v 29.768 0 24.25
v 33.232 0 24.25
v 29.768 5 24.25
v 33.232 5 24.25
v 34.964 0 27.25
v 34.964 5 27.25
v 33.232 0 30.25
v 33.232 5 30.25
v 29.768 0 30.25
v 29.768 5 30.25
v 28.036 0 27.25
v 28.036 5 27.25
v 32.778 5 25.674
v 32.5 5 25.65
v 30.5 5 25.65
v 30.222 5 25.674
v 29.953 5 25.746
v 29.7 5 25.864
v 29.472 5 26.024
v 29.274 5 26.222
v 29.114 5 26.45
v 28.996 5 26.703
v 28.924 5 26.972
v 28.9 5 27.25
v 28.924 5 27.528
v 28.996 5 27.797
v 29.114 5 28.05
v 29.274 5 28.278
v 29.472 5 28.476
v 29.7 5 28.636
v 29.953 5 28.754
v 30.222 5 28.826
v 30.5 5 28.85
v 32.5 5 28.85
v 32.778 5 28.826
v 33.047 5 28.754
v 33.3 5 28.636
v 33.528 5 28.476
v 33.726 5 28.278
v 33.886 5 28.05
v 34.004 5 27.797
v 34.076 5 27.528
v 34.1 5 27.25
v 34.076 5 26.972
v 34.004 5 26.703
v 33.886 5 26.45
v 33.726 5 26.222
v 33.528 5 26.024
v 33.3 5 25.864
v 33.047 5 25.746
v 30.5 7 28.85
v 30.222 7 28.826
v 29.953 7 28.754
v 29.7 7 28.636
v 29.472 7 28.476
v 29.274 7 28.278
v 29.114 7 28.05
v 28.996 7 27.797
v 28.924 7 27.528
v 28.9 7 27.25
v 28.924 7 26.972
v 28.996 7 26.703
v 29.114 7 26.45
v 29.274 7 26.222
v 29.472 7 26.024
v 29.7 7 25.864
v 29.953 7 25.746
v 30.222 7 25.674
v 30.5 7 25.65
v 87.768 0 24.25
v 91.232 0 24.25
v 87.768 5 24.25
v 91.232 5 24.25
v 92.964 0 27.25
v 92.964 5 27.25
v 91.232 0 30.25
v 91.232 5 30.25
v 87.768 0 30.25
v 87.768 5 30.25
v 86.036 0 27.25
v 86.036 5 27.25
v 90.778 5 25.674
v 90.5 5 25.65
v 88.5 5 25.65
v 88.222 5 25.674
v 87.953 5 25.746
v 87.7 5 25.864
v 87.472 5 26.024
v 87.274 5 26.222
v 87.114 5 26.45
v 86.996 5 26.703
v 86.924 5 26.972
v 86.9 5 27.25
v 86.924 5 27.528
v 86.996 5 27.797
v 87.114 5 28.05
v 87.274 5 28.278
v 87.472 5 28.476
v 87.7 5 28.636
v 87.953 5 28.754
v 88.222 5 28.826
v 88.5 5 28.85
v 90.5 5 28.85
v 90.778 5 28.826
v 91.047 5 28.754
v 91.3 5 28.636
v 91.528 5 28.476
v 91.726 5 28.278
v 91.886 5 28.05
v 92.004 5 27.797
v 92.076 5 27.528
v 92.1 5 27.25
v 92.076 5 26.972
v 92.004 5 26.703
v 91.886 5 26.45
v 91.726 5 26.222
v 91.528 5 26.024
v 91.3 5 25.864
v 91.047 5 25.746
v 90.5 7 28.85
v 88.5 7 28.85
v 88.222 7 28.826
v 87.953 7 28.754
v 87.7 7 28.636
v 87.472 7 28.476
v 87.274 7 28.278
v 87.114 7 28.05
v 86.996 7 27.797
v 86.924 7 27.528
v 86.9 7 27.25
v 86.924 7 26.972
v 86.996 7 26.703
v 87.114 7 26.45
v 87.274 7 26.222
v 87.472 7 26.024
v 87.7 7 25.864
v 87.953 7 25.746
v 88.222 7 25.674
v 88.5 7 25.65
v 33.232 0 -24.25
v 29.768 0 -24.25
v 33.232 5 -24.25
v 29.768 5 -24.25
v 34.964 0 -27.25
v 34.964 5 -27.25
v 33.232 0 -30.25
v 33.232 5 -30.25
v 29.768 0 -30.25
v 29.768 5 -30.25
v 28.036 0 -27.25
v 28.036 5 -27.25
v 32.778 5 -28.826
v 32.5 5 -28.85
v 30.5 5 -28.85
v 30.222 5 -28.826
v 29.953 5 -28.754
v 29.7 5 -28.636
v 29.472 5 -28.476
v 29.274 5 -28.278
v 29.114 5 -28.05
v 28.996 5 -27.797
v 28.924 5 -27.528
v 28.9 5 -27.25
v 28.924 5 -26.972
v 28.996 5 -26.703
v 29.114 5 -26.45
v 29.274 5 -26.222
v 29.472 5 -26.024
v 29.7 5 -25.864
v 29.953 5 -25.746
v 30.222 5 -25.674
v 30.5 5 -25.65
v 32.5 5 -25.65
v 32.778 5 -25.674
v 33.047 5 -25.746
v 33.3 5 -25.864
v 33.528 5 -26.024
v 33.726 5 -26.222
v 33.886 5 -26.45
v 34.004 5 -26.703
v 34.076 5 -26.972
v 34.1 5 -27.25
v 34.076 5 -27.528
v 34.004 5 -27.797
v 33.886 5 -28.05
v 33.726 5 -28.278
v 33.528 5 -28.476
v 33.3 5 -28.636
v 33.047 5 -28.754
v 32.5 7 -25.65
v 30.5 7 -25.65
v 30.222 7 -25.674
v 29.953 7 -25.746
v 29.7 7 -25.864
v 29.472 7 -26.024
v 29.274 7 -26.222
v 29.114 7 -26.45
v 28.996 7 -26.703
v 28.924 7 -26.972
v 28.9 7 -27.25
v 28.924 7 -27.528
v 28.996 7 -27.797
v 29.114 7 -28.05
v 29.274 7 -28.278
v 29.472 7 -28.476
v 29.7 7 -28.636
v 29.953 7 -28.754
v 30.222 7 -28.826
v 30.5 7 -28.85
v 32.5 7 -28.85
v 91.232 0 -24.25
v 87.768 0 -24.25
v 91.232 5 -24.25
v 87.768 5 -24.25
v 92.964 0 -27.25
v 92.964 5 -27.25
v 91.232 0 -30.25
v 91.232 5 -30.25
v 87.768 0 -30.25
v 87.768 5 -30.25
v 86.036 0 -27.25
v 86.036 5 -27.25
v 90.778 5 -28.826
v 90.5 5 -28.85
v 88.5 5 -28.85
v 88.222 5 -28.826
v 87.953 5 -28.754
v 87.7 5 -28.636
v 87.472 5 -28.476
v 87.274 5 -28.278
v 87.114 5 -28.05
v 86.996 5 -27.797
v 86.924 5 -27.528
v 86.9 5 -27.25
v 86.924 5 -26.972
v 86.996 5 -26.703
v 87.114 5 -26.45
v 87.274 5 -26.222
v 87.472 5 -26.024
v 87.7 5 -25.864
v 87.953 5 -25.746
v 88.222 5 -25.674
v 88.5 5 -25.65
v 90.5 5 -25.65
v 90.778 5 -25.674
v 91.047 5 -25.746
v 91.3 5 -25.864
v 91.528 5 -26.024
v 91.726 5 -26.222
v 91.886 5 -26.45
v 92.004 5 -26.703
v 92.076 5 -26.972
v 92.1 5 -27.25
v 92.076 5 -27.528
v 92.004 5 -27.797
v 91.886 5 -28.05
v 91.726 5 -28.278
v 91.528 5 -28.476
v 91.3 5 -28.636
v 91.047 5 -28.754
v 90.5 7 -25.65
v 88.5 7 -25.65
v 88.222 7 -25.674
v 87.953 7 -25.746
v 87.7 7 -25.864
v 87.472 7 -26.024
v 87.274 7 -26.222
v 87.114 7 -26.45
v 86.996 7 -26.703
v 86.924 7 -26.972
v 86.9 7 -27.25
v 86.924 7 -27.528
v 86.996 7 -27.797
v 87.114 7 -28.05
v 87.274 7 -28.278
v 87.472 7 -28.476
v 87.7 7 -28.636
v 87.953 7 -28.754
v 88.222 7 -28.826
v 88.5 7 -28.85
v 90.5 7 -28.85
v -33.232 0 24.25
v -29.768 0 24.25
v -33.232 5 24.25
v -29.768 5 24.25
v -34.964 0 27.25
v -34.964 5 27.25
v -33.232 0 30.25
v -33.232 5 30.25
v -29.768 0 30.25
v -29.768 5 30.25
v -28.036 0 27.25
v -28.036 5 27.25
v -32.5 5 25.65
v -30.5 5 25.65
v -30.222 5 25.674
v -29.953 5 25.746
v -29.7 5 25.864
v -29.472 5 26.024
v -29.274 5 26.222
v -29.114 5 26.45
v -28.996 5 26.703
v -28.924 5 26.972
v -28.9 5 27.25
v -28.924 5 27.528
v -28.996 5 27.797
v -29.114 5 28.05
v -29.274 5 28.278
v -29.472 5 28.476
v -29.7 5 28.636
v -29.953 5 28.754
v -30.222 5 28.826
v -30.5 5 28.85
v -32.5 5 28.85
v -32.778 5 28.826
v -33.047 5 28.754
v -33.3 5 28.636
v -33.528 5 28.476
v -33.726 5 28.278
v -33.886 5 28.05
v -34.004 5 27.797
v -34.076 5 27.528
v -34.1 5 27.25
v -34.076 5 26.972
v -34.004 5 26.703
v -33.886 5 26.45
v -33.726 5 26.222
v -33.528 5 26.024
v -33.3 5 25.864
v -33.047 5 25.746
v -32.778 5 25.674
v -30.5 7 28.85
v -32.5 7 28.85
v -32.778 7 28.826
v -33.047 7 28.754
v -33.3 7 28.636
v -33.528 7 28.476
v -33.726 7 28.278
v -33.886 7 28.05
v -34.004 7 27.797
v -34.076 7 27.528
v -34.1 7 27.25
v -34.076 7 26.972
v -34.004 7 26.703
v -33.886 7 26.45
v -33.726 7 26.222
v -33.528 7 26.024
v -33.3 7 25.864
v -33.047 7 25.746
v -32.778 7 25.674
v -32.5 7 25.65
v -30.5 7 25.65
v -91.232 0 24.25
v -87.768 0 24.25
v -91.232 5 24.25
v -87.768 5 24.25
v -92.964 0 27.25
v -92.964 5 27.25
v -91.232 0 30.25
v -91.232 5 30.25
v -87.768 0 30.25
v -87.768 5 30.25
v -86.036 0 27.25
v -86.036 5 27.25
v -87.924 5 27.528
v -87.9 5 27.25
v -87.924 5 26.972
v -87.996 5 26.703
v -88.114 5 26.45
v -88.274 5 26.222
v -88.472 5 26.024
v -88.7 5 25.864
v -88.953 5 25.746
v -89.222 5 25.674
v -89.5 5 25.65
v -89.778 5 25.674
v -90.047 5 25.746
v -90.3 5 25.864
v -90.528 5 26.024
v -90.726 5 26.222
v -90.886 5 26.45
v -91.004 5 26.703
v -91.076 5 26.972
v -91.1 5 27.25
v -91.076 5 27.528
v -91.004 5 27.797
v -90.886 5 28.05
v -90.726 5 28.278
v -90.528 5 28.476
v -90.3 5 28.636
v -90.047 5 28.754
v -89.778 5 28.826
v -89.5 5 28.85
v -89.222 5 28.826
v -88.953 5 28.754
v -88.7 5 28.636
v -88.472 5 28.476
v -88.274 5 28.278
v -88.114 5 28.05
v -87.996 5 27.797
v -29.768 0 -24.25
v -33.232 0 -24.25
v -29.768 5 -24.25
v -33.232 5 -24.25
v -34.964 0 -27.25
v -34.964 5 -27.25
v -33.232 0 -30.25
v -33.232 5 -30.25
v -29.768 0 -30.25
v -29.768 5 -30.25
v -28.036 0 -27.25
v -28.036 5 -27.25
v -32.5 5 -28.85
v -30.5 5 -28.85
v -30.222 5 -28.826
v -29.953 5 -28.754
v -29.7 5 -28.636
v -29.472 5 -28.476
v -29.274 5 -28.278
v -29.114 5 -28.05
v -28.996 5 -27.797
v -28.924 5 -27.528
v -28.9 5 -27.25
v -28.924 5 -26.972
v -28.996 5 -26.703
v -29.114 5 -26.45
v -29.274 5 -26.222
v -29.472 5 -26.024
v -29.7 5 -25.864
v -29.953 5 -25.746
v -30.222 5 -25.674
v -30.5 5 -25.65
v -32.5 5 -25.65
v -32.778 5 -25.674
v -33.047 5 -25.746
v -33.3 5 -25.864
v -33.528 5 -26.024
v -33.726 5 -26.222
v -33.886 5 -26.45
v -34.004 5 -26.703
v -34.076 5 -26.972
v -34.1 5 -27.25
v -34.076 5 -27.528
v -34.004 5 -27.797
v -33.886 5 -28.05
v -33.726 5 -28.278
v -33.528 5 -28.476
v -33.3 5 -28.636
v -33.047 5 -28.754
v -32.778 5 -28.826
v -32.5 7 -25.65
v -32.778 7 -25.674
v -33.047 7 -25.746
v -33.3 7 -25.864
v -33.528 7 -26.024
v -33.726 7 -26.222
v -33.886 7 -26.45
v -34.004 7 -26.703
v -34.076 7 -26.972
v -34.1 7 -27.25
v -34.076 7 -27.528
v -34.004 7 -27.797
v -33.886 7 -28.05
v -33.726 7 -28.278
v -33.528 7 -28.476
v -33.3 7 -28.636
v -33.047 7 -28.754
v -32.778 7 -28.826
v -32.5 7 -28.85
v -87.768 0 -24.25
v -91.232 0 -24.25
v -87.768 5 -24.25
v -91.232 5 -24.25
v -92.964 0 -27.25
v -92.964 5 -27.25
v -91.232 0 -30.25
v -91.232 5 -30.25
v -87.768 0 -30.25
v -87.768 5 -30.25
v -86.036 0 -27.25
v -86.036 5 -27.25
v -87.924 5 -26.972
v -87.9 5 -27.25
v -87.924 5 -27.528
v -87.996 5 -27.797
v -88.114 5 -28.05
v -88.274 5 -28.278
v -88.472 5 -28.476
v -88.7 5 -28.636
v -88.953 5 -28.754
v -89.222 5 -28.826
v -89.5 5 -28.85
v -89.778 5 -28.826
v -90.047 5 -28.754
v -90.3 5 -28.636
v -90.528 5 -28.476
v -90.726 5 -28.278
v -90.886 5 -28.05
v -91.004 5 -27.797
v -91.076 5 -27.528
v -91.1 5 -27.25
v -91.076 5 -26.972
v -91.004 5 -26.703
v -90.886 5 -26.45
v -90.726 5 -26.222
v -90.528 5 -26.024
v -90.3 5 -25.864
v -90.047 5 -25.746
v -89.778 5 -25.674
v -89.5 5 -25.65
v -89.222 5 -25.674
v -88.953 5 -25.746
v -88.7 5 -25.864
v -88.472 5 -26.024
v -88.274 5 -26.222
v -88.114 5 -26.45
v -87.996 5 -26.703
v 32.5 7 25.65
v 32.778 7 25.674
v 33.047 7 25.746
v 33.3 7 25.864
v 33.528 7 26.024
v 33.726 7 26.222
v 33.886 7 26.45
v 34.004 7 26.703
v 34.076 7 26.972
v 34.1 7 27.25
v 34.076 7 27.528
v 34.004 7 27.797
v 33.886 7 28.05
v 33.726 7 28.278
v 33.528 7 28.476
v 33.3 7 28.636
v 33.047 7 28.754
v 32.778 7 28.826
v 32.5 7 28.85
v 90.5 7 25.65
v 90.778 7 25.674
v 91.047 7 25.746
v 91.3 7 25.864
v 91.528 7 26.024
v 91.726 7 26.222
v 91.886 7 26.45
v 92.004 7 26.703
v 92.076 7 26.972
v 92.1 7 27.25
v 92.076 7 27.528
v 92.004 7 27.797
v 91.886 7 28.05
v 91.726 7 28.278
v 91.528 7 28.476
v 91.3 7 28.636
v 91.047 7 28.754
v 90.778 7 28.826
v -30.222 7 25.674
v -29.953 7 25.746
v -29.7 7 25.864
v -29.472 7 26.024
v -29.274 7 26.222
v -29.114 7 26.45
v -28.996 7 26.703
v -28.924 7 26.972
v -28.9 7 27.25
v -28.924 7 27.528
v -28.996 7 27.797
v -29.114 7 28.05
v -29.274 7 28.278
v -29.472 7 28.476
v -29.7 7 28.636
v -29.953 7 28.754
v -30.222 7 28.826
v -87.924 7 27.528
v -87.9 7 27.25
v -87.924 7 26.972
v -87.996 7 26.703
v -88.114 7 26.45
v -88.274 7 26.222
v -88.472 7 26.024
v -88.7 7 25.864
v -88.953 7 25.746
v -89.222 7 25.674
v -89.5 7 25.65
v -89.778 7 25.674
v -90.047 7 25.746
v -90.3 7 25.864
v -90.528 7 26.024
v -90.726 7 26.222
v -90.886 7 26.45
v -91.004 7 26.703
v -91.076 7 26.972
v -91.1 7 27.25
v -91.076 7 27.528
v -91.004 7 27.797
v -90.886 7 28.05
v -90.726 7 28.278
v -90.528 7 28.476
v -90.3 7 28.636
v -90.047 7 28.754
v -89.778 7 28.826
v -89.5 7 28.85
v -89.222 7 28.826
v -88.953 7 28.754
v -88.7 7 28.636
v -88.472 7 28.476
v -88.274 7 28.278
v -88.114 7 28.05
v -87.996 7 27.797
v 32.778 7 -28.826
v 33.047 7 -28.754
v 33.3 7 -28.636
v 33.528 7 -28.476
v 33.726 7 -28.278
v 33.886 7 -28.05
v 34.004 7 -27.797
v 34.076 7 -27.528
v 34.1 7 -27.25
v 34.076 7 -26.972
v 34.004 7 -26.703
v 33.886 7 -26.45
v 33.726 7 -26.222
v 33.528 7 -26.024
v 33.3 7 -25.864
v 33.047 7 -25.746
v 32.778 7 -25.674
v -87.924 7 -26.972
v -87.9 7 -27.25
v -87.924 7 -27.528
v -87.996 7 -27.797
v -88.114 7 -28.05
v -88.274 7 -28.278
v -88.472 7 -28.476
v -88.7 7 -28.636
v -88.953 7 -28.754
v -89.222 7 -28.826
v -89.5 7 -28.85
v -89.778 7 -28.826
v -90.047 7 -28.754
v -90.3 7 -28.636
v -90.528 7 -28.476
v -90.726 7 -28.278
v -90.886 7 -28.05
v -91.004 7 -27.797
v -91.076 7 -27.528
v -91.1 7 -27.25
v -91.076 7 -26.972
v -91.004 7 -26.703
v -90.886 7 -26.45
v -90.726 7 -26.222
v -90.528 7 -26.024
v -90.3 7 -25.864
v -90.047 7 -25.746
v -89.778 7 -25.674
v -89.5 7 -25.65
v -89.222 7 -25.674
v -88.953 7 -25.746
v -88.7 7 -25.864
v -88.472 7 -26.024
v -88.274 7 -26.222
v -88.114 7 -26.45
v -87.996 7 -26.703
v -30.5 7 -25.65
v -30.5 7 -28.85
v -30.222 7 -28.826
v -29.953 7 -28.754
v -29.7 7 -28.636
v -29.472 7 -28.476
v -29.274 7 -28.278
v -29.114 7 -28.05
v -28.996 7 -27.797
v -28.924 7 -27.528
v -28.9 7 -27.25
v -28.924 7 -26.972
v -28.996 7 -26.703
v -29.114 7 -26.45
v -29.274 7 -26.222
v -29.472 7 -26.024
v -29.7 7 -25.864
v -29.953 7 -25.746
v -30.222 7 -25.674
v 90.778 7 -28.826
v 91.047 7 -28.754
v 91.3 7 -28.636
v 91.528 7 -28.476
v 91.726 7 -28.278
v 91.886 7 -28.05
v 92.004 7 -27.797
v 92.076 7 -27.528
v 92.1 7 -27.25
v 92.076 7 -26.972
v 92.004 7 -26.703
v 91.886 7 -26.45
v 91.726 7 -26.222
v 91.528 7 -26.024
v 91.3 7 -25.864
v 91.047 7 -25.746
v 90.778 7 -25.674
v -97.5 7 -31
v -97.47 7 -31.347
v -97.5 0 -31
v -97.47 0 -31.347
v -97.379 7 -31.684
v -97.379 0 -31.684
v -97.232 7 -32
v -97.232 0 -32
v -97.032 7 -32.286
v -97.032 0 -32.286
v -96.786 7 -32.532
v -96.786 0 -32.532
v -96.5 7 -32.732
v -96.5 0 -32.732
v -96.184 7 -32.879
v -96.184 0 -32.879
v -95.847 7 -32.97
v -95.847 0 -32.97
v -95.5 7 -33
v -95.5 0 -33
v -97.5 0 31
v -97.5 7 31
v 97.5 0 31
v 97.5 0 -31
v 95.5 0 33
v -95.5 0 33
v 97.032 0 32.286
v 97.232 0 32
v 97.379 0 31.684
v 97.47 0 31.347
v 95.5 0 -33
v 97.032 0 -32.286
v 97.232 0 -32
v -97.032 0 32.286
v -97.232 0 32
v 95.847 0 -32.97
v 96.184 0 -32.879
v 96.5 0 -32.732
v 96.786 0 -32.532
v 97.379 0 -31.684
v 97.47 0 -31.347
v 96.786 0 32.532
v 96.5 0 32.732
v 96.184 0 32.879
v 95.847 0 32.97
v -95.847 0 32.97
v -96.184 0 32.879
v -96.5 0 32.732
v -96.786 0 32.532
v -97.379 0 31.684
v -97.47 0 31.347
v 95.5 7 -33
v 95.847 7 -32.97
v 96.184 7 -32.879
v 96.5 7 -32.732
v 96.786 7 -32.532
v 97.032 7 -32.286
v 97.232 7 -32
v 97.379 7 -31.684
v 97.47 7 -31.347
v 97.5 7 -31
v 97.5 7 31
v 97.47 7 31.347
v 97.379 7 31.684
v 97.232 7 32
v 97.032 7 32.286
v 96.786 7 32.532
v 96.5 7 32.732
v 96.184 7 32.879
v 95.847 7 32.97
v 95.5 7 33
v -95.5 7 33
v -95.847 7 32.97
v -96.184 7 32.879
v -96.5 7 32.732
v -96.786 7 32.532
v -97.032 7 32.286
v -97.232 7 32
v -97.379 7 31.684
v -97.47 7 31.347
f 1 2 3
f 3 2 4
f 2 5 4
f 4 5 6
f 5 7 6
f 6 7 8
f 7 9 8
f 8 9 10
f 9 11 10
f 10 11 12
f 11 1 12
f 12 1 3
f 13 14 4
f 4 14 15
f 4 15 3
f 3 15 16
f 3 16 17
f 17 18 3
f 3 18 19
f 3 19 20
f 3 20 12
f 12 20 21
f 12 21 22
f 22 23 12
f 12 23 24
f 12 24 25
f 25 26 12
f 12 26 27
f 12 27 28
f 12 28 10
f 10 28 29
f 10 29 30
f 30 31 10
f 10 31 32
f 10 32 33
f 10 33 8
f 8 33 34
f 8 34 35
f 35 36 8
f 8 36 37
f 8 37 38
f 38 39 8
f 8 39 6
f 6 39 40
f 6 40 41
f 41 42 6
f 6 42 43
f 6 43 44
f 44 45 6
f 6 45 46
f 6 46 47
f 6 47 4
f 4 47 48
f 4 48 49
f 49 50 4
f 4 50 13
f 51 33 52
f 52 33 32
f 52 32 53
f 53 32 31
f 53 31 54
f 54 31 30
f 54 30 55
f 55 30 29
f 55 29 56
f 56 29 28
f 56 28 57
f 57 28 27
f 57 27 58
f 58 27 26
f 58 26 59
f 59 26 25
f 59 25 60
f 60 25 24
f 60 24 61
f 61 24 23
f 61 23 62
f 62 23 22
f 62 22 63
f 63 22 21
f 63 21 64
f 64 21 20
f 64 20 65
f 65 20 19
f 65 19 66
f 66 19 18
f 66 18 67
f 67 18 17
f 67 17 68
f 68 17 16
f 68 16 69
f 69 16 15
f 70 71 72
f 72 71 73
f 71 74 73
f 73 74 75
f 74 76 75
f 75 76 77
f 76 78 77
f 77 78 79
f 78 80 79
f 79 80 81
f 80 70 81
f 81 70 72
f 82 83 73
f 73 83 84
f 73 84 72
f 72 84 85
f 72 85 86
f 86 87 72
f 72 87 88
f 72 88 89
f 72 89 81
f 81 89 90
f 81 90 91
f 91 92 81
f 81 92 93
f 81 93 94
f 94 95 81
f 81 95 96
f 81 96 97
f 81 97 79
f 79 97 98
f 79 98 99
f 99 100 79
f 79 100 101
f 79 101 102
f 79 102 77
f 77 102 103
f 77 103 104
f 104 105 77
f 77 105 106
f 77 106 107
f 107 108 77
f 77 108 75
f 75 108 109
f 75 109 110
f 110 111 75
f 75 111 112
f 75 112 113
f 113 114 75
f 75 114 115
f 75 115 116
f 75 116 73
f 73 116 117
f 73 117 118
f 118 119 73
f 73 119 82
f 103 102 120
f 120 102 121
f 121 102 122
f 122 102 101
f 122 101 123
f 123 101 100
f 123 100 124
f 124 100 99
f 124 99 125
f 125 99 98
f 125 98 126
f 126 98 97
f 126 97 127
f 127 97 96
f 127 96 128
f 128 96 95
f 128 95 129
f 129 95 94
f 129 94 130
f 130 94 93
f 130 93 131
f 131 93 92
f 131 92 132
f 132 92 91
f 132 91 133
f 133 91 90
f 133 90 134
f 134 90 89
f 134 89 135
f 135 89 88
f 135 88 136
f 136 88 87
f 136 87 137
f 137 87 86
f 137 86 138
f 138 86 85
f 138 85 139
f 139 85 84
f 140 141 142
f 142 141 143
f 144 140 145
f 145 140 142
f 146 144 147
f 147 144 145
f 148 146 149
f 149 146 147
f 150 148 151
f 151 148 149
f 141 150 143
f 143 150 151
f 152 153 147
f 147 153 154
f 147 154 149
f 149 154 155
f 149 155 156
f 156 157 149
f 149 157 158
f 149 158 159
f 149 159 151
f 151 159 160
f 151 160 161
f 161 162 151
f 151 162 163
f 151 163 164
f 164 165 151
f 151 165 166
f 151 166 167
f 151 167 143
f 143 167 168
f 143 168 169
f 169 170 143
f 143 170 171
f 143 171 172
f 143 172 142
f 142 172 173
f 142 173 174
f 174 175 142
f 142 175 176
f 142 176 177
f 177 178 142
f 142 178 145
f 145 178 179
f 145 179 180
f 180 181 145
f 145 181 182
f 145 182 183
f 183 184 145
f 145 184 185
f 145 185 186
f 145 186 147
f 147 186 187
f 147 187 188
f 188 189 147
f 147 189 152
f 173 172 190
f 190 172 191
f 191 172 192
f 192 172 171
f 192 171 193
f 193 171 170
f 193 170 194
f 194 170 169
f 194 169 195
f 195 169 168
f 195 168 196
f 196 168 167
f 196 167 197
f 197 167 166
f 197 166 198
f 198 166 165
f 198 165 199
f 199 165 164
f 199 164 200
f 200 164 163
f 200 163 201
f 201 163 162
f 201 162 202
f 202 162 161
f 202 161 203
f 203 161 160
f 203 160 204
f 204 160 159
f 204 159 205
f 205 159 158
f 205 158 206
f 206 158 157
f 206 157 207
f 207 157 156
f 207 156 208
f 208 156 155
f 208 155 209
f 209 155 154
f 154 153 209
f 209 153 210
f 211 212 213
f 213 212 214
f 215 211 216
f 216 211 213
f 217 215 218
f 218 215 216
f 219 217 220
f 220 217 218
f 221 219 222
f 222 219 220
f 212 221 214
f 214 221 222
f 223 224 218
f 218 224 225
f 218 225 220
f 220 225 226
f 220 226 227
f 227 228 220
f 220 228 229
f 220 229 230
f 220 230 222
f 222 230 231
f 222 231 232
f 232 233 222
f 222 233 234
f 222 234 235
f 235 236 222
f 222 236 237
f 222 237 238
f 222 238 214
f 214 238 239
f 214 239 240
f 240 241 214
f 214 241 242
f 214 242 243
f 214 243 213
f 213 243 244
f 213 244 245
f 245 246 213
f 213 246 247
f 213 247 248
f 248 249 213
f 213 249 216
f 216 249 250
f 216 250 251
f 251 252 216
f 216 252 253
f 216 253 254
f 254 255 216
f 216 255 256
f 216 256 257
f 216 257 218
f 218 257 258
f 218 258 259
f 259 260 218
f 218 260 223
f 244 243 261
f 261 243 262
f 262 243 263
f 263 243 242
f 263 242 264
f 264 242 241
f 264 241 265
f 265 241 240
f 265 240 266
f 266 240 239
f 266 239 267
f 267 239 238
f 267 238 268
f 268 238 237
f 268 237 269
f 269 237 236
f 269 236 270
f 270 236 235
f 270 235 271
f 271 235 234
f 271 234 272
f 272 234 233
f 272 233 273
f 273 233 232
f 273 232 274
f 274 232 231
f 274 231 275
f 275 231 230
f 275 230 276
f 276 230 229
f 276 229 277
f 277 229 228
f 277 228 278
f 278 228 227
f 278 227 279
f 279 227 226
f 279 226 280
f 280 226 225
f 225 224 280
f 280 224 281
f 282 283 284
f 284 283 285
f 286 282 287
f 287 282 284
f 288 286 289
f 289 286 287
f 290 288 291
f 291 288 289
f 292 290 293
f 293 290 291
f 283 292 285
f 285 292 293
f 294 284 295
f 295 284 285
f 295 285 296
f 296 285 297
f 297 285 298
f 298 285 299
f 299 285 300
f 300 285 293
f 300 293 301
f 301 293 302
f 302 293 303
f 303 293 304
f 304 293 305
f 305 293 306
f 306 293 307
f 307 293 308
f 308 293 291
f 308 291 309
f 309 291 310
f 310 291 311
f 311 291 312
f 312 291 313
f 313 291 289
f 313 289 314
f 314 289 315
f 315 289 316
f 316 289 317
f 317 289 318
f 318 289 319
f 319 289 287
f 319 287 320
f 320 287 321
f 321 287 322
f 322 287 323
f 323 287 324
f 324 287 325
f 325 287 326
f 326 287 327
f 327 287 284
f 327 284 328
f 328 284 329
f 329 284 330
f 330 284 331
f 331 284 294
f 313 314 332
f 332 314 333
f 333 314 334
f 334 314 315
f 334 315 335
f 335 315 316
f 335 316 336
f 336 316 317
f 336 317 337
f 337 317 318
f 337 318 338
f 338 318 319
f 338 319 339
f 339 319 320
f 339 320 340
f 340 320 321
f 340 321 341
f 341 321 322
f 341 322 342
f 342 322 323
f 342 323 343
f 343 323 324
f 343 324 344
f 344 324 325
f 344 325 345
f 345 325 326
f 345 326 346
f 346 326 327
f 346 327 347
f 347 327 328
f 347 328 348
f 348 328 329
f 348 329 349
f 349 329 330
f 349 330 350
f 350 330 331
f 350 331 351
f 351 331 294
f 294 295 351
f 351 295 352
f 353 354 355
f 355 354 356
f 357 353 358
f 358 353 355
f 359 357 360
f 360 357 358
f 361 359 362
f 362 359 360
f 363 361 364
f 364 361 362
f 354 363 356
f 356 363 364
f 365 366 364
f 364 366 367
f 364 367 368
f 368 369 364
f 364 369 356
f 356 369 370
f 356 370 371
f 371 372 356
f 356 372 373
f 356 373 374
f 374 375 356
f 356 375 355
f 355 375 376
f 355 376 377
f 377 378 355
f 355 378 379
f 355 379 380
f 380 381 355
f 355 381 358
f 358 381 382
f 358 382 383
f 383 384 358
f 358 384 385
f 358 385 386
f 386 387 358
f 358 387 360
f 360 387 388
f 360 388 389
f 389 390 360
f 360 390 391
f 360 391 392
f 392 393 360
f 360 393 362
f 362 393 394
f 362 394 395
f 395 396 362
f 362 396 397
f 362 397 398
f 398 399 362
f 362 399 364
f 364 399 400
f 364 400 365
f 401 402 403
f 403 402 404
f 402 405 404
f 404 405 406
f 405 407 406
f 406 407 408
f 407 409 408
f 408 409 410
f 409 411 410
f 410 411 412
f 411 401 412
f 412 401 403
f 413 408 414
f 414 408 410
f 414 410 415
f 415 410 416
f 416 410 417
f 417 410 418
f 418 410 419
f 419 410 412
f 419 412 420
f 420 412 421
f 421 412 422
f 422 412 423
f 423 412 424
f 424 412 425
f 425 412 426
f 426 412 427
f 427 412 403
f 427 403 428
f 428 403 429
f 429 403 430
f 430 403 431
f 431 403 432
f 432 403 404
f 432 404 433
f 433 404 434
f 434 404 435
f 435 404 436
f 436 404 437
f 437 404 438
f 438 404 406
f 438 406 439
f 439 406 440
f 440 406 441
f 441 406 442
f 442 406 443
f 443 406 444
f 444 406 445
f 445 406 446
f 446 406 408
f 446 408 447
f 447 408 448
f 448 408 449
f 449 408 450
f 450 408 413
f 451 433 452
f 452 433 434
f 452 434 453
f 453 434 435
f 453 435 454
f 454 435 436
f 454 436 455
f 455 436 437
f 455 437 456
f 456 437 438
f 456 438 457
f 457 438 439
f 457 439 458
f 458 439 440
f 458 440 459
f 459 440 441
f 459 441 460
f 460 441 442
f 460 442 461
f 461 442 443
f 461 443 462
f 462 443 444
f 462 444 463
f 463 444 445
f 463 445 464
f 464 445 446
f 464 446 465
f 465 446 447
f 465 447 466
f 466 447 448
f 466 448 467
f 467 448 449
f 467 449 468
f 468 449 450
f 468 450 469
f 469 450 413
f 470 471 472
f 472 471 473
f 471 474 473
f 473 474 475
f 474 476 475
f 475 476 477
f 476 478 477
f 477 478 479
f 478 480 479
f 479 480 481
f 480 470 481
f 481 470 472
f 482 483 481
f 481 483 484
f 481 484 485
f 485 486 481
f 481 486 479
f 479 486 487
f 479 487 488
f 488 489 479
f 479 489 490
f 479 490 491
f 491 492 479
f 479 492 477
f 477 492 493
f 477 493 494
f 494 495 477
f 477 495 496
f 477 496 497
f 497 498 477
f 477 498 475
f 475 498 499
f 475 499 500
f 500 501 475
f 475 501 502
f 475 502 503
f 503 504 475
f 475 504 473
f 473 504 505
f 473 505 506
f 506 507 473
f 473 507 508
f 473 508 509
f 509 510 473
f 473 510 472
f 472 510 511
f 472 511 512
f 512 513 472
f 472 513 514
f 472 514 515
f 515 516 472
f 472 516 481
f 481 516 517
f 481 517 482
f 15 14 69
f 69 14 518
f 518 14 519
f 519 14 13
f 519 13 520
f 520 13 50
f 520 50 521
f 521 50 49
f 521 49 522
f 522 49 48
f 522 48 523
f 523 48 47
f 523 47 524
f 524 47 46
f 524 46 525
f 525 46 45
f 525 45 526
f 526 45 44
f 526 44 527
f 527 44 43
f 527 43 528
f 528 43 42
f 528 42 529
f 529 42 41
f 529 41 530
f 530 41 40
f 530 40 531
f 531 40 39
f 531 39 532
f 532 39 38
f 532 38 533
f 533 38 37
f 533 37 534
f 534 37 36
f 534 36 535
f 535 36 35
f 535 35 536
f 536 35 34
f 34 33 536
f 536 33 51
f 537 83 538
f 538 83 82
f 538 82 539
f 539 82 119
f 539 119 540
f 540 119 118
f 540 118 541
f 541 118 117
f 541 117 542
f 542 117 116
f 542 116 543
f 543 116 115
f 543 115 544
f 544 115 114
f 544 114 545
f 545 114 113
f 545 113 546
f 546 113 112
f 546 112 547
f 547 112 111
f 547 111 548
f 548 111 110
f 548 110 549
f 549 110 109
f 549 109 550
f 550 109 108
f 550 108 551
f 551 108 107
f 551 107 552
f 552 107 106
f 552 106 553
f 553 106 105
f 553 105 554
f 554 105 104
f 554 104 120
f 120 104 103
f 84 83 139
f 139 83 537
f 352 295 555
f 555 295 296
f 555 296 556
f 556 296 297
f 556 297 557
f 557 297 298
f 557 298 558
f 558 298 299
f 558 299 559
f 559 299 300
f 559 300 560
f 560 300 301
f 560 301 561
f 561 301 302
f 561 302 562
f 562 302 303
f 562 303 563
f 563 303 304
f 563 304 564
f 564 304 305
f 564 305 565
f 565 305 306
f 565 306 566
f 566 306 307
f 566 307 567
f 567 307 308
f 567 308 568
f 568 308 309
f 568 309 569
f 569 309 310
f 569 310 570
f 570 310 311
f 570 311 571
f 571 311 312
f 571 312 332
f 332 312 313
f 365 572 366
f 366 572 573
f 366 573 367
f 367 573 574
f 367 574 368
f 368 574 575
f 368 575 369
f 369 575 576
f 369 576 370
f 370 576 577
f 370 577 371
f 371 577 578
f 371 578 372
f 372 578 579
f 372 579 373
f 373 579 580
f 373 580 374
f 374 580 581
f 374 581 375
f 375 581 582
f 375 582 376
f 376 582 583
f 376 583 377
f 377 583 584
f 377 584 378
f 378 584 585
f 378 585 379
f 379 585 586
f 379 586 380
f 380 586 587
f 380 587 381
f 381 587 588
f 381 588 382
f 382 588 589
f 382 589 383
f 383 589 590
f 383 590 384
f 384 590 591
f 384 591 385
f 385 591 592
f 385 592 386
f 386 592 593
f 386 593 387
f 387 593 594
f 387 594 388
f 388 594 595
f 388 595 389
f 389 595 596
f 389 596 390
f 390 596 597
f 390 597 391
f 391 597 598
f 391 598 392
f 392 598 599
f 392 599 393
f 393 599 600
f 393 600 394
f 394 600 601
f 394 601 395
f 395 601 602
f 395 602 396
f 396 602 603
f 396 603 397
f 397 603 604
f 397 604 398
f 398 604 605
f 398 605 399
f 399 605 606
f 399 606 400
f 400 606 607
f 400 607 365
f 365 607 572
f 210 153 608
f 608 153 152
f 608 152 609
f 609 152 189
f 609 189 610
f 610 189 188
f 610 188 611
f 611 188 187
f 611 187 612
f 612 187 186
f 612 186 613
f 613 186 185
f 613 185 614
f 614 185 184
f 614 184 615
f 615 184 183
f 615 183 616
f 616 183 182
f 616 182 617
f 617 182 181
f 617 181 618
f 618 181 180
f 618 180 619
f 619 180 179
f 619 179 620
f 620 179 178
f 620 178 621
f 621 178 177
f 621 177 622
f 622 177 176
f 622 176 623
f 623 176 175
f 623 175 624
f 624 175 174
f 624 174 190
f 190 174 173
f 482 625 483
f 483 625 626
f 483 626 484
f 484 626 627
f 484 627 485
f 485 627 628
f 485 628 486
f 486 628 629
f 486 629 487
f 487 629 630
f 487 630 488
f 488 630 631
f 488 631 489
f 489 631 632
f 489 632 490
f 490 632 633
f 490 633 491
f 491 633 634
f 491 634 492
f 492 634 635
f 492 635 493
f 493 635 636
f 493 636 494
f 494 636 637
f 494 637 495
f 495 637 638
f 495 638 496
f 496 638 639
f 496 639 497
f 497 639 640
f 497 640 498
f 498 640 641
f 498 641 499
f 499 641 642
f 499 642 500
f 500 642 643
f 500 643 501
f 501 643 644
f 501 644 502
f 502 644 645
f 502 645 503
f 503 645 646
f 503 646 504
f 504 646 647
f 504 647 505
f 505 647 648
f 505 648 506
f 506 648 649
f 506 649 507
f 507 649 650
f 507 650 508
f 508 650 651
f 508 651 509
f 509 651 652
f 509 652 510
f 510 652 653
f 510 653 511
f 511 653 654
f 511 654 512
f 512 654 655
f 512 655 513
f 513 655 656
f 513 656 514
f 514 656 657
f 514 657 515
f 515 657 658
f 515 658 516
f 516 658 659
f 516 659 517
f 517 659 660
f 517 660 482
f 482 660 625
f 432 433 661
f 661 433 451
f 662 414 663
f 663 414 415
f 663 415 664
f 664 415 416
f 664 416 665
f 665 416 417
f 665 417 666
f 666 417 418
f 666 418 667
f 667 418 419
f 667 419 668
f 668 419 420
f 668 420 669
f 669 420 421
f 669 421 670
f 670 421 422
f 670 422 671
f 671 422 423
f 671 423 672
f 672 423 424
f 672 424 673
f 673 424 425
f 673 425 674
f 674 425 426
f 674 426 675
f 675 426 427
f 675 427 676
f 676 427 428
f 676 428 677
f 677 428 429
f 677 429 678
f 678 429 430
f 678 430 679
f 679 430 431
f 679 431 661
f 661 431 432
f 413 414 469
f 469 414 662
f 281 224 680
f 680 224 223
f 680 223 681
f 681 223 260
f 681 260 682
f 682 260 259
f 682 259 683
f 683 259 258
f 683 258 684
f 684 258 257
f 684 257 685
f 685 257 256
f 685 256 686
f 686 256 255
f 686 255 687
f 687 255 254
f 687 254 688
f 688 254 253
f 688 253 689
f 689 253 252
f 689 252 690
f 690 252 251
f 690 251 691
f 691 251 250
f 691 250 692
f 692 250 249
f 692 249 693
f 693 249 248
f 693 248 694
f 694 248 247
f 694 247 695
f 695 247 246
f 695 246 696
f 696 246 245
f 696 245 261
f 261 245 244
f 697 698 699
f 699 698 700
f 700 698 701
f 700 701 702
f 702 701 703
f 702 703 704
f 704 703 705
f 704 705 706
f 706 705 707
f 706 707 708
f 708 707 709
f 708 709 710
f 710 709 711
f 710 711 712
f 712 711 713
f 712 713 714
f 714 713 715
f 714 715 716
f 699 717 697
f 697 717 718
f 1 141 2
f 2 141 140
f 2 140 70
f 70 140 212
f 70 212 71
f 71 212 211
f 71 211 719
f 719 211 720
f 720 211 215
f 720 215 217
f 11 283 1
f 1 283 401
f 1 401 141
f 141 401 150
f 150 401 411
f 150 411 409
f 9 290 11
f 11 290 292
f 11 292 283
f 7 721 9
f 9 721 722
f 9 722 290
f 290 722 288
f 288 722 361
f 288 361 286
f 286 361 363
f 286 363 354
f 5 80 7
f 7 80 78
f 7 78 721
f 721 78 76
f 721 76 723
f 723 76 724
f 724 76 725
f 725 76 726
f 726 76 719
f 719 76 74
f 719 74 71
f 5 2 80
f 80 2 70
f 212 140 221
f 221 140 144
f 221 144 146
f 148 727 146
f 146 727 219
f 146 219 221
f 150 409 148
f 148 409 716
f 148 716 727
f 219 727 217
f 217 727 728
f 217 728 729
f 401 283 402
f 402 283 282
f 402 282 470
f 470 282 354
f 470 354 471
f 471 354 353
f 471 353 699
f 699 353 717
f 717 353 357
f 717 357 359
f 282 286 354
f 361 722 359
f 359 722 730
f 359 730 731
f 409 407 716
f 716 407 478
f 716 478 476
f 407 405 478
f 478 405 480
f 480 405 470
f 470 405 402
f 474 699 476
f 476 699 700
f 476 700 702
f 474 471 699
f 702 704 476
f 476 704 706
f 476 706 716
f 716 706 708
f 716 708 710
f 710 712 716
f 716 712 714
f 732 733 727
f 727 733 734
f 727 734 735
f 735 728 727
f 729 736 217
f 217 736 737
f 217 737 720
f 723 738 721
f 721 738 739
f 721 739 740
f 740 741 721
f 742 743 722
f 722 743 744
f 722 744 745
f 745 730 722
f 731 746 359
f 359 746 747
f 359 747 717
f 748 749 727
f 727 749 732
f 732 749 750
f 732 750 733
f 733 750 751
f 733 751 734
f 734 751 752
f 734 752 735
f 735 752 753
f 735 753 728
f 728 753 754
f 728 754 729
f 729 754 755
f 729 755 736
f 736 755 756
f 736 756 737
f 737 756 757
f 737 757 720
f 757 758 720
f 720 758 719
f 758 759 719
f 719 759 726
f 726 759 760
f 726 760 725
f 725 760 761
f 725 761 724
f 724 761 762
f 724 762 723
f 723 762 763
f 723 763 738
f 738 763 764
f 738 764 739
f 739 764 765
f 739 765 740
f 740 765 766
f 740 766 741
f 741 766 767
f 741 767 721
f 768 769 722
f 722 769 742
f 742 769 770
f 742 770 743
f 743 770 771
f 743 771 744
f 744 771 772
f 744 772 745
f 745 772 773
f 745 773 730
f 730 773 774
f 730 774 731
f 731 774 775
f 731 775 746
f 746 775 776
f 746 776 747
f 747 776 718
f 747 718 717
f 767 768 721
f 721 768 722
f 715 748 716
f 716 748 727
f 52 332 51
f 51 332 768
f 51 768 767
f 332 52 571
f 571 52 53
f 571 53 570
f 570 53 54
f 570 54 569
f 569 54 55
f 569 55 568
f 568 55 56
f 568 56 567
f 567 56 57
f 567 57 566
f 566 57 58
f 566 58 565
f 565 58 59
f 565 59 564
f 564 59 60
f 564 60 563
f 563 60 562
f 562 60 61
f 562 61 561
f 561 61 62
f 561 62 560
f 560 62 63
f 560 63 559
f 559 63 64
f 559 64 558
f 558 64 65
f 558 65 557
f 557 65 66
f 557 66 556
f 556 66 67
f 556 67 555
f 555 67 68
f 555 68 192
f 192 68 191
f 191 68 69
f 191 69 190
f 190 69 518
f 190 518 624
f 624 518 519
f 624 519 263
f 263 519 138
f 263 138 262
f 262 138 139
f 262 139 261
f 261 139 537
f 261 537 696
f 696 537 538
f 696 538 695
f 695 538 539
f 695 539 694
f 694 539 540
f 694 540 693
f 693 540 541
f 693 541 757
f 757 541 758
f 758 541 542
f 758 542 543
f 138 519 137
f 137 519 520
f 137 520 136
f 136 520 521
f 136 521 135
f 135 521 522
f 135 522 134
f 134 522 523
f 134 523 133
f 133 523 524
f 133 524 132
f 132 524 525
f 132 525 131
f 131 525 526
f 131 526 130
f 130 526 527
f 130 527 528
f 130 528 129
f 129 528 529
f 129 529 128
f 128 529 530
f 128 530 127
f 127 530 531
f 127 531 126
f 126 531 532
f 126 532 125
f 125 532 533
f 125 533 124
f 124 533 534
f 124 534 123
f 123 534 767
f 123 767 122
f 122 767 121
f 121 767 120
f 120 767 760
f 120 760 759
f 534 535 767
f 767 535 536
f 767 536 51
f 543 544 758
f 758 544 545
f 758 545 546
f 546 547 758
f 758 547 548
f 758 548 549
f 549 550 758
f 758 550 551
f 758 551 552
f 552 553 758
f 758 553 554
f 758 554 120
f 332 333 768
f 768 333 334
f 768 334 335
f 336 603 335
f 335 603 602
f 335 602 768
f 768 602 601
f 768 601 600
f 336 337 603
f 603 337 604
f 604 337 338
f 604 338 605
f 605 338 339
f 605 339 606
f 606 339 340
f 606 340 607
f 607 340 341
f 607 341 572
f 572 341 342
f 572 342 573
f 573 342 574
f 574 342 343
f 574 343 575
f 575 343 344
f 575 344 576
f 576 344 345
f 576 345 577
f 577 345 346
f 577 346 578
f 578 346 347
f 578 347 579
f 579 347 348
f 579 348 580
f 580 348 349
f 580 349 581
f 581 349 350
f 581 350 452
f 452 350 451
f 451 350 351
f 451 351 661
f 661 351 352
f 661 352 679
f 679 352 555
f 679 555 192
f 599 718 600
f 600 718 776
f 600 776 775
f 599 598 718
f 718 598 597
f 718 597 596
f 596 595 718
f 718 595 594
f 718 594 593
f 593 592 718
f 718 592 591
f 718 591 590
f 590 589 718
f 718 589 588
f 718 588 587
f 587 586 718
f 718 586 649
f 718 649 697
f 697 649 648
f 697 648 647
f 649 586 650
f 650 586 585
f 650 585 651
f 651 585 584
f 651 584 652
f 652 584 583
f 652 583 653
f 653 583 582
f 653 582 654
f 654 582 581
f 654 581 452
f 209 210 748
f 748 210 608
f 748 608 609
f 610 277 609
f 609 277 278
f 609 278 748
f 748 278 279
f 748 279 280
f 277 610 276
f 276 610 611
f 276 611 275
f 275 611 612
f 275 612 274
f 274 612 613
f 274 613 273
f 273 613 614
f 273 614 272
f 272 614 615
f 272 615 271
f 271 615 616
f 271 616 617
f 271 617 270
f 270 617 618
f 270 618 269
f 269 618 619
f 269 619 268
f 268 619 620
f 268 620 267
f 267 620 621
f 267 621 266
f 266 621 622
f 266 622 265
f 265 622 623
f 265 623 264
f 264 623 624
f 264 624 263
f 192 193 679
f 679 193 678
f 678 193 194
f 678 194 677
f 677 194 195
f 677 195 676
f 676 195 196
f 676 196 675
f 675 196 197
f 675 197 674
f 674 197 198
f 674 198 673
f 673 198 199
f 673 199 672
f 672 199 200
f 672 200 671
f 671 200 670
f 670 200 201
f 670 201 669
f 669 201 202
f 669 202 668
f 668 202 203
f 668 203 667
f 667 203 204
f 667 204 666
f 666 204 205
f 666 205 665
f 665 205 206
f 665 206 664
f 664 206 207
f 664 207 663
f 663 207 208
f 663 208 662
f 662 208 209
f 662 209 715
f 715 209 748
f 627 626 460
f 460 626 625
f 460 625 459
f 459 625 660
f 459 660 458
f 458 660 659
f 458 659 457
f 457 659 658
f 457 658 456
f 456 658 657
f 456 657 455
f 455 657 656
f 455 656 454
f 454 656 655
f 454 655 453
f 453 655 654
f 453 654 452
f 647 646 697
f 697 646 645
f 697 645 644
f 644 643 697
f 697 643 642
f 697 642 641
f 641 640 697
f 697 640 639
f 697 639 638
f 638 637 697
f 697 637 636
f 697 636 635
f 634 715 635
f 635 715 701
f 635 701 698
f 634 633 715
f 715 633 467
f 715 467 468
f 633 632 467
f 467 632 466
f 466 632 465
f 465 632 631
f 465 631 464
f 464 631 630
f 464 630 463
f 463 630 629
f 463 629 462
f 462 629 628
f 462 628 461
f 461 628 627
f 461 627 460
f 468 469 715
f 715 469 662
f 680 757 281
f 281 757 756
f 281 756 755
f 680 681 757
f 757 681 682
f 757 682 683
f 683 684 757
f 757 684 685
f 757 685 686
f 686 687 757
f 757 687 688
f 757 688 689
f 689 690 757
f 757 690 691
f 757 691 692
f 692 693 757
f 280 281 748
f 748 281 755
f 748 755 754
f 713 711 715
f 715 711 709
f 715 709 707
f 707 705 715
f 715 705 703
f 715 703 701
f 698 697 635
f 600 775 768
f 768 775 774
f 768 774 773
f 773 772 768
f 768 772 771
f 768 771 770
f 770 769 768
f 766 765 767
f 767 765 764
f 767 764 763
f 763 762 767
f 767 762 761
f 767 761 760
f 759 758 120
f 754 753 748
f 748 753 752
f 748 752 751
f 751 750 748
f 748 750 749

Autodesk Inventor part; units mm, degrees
ref_plane "YZ Plane" through (0, 0, 0) normal (1, 0, 0) x (0, 1, 0)
ref_plane "XZ Plane" through (0, 0, 0) normal (0, 1, 0) x (-1, 0, 0)
ref_plane "XY Plane" through (0, 0, 0) normal (0, 0, 1) x (1, 0, 0)
sketch "Sketch1" plane through (0, 0, 0) normal (0, 1, 0) x (-1, 0, 0)
  line L0 (97.5, -33) -> (-97.5, -33)
  line L1 (-97.5, -33) -> (-97.5, 33)
  line L2 (-97.5, 33) -> (97.5, 33)
  line L3 (97.5, 33) -> (97.5, -33)
  line L4 (97.5, -33) -> (-97.5, 33) construction
  line L5 (-97.5, -33) -> (97.5, 33) construction
  point P0 (0, 0)
  dimension "d0" = 195
  dimension "d1" = 66
extrude "Extrusion1" add sketch "Sketch1" along normal blind 7
fillet "Fillet1" radius 2 4 edges at (-97.5, 3.5, 33) (97.5, 3.5, 33) (97.5, 3.5, -33) (-97.5, 3.5, -33)
sketch "Sketch2" plane through (0, 7, 0) normal (0, 1, 0) x (1, 0, 0)
  line L0 (-32.5, 27.25) -> (-30.5, 27.25) construction
  line L1 (-32.5, 25.65) -> (-30.5, 25.65)
  line L2 (-30.5, 28.85) -> (-32.5, 28.85)
  arc A0 (-32.5, 28.85) -> (-32.5, 25.65) centre (-32.5, 27.25) ccw
  arc A1 (-30.5, 25.65) -> (-30.5, 28.85) centre (-30.5, 27.25) ccw
  circle A2 centre (-89.5, 27.25) radius 1.6
  line L3 (30.5, 27.25) -> (32.5, 27.25) construction
  line L4 (30.5, 25.65) -> (32.5, 25.65)
  line L5 (32.5, 28.85) -> (30.5, 28.85)
  arc A3 (30.5, 28.85) -> (30.5, 25.65) centre (30.5, 27.25) ccw
  arc A4 (32.5, 25.65) -> (32.5, 28.85) centre (32.5, 27.25) ccw
  line L6 (88.5, 27.25) -> (90.5, 27.25) construction
  line L7 (88.5, 25.65) -> (90.5, 25.65)
  line L8 (90.5, 28.85) -> (88.5, 28.85)
  arc A5 (88.5, 28.85) -> (88.5, 25.65) centre (88.5, 27.25) ccw
  arc A6 (90.5, 25.65) -> (90.5, 28.85) centre (90.5, 27.25) ccw
  line L9 (95.5, 33) -> (-95.5, 33) projected
  line L10 (-97.5, 31) -> (-97.5, -31) projected
  line L11 (97.5, -31) -> (97.5, 31) projected
  point P0 (0, 0)
  point P1 (-31.5, 27.25)
  point P2 (31.5, 27.25)
  point P3 (89.5, 27.25)
  dimension "d9" = 1
  dimension "d10" = 3.2
  dimension "d11" = 3.2
  dimension "d12" = 1
  dimension "d13" = 3.2
  dimension "d14" = 1
  dimension "d15" = 3.2
  dimension "d16" = 58
  dimension "d17" = 63
  dimension "d18" = 58
  dimension "d19" = 5.75
  dimension "d21" = 8
extrude "Extrusion2" cut sketch "Sketch2" against normal through all
mirror "Mirror1" about plane through (0, 0, 0) normal (0, 0, 1) of "Extrusion2"
sketch "Sketch3" plane through (0, 0, 0) normal (0, -1, 0) x (1, 0, 0)
  circle A0 centre (-89.5, -27.25) radius 1.6 projected
  line L0 (-87.7679, -24.25) -> (-86.0359, -27.25)
  line L1 (-86.0359, -27.25) -> (-87.7679, -30.25)
  line L2 (-87.7679, -30.25) -> (-91.2321, -30.25)
  line L3 (-91.2321, -30.25) -> (-92.9641, -27.25)
  line L4 (-92.9641, -27.25) -> (-91.2321, -24.25)
  line L5 (-91.2321, -24.25) -> (-87.7679, -24.25)
  point P0 (0, 0)
  dimension "d24" = 3
extrude "Extrusion3" cut sketch "Sketch3" against normal blind 5
pattern_linear "Rectangular Pattern1" count 2 spacing 58 along (1, 0, 0) of "Extrusion3"
mirror "Mirror2" about plane through (0, 0, 0) normal (0, 0, 1) of "Extrusion3", "Rectangular Pattern1"
mirror "Mirror3" about plane through (0, 0, 0) normal (1, 0, 0) of "Extrusion3", "Rectangular Pattern1", "Mirror2"
